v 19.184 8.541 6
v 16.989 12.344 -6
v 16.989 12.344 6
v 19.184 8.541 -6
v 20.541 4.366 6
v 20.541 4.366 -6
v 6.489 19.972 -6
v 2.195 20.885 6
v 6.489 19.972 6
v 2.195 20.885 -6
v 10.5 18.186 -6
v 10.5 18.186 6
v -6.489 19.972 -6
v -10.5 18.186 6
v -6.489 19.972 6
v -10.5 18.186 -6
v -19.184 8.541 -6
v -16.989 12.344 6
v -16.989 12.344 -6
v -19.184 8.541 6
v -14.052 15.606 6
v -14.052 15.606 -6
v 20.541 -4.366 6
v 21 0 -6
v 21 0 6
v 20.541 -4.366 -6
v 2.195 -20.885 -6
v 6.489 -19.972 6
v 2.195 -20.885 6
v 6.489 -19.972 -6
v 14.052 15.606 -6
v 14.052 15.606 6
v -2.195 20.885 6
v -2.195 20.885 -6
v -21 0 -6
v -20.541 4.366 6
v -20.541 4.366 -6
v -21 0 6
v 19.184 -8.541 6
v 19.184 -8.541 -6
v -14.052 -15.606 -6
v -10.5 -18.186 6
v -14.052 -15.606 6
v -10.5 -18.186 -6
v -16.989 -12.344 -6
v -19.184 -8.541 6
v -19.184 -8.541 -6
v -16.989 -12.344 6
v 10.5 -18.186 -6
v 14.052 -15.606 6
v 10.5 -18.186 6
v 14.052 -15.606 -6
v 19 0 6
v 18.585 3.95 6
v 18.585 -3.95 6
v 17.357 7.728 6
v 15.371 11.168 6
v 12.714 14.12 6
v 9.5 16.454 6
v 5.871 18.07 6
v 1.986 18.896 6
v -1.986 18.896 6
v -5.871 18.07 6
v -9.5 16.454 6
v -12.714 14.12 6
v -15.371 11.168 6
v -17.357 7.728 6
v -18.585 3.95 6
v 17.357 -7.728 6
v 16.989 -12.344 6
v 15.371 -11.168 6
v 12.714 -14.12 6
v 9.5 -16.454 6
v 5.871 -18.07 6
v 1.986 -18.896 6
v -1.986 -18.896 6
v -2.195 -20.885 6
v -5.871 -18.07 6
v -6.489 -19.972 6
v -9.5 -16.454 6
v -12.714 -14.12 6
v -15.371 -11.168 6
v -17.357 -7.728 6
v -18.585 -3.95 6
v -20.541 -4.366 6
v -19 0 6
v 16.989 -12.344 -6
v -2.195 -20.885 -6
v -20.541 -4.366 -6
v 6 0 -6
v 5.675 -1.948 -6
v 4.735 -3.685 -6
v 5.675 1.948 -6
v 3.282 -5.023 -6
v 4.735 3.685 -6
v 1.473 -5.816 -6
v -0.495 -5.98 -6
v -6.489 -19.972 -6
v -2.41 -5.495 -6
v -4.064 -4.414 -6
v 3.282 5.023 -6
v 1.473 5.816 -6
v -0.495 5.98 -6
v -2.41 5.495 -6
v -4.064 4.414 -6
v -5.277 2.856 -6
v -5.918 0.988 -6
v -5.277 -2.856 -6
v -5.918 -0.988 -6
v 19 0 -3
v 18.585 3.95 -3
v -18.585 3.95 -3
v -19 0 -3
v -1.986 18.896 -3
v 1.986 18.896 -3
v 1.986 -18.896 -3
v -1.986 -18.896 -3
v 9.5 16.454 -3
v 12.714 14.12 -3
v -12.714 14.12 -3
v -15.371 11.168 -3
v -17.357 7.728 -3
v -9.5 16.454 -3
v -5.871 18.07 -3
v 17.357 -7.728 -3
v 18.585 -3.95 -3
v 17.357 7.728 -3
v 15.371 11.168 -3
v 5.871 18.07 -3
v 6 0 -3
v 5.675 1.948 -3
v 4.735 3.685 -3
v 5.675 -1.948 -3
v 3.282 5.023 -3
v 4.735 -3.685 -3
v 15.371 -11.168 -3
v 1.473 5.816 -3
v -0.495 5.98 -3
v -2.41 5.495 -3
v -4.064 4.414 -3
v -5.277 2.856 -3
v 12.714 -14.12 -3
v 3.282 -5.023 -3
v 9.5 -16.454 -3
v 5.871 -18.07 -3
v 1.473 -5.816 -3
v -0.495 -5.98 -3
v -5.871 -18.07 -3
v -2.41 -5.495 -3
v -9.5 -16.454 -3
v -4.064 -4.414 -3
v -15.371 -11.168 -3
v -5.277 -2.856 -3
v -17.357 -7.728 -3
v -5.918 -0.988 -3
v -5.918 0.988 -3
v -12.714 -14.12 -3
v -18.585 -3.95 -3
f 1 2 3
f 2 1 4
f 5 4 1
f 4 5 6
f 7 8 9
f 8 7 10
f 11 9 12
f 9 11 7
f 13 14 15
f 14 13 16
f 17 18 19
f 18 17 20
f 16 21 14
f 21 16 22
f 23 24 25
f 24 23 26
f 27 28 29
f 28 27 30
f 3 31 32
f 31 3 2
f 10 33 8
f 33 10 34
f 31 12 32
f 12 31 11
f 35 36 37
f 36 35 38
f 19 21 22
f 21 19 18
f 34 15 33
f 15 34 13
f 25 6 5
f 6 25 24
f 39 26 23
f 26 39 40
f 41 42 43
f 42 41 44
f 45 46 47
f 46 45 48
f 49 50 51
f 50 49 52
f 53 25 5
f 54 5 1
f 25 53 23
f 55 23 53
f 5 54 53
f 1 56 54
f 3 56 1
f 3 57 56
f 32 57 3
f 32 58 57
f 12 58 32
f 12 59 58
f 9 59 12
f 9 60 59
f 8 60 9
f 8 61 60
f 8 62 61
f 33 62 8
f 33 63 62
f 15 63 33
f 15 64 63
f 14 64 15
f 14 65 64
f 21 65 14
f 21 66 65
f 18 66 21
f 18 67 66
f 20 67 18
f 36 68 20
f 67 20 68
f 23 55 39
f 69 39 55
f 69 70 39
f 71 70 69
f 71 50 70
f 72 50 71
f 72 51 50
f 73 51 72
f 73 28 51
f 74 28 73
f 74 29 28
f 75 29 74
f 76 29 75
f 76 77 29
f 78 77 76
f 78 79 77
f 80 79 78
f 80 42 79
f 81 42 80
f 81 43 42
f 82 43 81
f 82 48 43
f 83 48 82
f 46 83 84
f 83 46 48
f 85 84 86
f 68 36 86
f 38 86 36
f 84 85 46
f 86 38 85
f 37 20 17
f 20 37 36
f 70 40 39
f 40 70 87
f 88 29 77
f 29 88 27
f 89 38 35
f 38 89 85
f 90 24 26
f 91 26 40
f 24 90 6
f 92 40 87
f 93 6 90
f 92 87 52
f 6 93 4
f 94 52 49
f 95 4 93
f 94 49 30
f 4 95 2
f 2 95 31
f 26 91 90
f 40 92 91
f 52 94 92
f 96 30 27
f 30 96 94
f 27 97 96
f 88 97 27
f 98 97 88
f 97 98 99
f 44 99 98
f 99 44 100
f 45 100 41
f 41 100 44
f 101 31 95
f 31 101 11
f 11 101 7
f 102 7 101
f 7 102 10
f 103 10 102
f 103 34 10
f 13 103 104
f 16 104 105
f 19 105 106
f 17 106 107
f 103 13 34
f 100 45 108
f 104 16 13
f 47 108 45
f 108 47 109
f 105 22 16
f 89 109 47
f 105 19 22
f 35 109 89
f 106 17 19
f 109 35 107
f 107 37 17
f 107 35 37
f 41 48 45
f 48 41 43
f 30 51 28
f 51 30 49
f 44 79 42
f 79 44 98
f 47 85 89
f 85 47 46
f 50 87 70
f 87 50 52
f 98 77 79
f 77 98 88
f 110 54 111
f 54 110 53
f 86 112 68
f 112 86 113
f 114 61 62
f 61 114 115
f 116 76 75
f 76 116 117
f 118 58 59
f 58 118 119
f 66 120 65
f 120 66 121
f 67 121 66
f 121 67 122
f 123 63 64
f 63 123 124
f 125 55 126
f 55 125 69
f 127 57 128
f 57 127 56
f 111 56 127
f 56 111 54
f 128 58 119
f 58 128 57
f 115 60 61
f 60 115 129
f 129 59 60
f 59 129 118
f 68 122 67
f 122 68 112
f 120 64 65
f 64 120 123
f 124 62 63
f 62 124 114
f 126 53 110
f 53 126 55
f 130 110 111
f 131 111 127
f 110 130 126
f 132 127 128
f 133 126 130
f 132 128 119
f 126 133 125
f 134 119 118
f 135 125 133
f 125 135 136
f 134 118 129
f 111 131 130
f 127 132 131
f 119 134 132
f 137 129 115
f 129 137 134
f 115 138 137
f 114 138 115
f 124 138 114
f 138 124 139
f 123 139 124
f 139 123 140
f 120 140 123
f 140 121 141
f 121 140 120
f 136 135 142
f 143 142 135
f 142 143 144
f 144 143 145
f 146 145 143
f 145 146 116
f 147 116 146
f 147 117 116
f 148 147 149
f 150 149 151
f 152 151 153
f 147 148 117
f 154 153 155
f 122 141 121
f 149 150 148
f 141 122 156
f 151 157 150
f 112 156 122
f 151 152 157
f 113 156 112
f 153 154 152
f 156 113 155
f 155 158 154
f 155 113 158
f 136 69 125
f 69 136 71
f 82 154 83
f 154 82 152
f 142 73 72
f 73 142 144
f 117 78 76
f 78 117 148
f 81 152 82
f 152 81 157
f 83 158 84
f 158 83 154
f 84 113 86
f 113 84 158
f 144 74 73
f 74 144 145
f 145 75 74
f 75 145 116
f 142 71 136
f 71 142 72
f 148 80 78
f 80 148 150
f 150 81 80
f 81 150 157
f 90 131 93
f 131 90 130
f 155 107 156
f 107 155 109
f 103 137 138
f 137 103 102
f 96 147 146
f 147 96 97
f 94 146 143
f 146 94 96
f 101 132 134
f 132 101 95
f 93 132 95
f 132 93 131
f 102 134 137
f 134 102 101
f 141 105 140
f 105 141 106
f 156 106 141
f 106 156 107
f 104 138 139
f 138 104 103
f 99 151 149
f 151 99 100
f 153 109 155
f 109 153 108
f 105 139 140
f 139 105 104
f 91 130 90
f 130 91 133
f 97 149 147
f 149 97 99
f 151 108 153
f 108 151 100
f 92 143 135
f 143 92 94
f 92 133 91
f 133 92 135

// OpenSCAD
difference(){
    difference(){
        cylinder(12,21,21,center=true);
        translate([0,0,2])
        cylinder(10,19,19,center=true);
        }
    cylinder(12,6,6,center=true);
    }
